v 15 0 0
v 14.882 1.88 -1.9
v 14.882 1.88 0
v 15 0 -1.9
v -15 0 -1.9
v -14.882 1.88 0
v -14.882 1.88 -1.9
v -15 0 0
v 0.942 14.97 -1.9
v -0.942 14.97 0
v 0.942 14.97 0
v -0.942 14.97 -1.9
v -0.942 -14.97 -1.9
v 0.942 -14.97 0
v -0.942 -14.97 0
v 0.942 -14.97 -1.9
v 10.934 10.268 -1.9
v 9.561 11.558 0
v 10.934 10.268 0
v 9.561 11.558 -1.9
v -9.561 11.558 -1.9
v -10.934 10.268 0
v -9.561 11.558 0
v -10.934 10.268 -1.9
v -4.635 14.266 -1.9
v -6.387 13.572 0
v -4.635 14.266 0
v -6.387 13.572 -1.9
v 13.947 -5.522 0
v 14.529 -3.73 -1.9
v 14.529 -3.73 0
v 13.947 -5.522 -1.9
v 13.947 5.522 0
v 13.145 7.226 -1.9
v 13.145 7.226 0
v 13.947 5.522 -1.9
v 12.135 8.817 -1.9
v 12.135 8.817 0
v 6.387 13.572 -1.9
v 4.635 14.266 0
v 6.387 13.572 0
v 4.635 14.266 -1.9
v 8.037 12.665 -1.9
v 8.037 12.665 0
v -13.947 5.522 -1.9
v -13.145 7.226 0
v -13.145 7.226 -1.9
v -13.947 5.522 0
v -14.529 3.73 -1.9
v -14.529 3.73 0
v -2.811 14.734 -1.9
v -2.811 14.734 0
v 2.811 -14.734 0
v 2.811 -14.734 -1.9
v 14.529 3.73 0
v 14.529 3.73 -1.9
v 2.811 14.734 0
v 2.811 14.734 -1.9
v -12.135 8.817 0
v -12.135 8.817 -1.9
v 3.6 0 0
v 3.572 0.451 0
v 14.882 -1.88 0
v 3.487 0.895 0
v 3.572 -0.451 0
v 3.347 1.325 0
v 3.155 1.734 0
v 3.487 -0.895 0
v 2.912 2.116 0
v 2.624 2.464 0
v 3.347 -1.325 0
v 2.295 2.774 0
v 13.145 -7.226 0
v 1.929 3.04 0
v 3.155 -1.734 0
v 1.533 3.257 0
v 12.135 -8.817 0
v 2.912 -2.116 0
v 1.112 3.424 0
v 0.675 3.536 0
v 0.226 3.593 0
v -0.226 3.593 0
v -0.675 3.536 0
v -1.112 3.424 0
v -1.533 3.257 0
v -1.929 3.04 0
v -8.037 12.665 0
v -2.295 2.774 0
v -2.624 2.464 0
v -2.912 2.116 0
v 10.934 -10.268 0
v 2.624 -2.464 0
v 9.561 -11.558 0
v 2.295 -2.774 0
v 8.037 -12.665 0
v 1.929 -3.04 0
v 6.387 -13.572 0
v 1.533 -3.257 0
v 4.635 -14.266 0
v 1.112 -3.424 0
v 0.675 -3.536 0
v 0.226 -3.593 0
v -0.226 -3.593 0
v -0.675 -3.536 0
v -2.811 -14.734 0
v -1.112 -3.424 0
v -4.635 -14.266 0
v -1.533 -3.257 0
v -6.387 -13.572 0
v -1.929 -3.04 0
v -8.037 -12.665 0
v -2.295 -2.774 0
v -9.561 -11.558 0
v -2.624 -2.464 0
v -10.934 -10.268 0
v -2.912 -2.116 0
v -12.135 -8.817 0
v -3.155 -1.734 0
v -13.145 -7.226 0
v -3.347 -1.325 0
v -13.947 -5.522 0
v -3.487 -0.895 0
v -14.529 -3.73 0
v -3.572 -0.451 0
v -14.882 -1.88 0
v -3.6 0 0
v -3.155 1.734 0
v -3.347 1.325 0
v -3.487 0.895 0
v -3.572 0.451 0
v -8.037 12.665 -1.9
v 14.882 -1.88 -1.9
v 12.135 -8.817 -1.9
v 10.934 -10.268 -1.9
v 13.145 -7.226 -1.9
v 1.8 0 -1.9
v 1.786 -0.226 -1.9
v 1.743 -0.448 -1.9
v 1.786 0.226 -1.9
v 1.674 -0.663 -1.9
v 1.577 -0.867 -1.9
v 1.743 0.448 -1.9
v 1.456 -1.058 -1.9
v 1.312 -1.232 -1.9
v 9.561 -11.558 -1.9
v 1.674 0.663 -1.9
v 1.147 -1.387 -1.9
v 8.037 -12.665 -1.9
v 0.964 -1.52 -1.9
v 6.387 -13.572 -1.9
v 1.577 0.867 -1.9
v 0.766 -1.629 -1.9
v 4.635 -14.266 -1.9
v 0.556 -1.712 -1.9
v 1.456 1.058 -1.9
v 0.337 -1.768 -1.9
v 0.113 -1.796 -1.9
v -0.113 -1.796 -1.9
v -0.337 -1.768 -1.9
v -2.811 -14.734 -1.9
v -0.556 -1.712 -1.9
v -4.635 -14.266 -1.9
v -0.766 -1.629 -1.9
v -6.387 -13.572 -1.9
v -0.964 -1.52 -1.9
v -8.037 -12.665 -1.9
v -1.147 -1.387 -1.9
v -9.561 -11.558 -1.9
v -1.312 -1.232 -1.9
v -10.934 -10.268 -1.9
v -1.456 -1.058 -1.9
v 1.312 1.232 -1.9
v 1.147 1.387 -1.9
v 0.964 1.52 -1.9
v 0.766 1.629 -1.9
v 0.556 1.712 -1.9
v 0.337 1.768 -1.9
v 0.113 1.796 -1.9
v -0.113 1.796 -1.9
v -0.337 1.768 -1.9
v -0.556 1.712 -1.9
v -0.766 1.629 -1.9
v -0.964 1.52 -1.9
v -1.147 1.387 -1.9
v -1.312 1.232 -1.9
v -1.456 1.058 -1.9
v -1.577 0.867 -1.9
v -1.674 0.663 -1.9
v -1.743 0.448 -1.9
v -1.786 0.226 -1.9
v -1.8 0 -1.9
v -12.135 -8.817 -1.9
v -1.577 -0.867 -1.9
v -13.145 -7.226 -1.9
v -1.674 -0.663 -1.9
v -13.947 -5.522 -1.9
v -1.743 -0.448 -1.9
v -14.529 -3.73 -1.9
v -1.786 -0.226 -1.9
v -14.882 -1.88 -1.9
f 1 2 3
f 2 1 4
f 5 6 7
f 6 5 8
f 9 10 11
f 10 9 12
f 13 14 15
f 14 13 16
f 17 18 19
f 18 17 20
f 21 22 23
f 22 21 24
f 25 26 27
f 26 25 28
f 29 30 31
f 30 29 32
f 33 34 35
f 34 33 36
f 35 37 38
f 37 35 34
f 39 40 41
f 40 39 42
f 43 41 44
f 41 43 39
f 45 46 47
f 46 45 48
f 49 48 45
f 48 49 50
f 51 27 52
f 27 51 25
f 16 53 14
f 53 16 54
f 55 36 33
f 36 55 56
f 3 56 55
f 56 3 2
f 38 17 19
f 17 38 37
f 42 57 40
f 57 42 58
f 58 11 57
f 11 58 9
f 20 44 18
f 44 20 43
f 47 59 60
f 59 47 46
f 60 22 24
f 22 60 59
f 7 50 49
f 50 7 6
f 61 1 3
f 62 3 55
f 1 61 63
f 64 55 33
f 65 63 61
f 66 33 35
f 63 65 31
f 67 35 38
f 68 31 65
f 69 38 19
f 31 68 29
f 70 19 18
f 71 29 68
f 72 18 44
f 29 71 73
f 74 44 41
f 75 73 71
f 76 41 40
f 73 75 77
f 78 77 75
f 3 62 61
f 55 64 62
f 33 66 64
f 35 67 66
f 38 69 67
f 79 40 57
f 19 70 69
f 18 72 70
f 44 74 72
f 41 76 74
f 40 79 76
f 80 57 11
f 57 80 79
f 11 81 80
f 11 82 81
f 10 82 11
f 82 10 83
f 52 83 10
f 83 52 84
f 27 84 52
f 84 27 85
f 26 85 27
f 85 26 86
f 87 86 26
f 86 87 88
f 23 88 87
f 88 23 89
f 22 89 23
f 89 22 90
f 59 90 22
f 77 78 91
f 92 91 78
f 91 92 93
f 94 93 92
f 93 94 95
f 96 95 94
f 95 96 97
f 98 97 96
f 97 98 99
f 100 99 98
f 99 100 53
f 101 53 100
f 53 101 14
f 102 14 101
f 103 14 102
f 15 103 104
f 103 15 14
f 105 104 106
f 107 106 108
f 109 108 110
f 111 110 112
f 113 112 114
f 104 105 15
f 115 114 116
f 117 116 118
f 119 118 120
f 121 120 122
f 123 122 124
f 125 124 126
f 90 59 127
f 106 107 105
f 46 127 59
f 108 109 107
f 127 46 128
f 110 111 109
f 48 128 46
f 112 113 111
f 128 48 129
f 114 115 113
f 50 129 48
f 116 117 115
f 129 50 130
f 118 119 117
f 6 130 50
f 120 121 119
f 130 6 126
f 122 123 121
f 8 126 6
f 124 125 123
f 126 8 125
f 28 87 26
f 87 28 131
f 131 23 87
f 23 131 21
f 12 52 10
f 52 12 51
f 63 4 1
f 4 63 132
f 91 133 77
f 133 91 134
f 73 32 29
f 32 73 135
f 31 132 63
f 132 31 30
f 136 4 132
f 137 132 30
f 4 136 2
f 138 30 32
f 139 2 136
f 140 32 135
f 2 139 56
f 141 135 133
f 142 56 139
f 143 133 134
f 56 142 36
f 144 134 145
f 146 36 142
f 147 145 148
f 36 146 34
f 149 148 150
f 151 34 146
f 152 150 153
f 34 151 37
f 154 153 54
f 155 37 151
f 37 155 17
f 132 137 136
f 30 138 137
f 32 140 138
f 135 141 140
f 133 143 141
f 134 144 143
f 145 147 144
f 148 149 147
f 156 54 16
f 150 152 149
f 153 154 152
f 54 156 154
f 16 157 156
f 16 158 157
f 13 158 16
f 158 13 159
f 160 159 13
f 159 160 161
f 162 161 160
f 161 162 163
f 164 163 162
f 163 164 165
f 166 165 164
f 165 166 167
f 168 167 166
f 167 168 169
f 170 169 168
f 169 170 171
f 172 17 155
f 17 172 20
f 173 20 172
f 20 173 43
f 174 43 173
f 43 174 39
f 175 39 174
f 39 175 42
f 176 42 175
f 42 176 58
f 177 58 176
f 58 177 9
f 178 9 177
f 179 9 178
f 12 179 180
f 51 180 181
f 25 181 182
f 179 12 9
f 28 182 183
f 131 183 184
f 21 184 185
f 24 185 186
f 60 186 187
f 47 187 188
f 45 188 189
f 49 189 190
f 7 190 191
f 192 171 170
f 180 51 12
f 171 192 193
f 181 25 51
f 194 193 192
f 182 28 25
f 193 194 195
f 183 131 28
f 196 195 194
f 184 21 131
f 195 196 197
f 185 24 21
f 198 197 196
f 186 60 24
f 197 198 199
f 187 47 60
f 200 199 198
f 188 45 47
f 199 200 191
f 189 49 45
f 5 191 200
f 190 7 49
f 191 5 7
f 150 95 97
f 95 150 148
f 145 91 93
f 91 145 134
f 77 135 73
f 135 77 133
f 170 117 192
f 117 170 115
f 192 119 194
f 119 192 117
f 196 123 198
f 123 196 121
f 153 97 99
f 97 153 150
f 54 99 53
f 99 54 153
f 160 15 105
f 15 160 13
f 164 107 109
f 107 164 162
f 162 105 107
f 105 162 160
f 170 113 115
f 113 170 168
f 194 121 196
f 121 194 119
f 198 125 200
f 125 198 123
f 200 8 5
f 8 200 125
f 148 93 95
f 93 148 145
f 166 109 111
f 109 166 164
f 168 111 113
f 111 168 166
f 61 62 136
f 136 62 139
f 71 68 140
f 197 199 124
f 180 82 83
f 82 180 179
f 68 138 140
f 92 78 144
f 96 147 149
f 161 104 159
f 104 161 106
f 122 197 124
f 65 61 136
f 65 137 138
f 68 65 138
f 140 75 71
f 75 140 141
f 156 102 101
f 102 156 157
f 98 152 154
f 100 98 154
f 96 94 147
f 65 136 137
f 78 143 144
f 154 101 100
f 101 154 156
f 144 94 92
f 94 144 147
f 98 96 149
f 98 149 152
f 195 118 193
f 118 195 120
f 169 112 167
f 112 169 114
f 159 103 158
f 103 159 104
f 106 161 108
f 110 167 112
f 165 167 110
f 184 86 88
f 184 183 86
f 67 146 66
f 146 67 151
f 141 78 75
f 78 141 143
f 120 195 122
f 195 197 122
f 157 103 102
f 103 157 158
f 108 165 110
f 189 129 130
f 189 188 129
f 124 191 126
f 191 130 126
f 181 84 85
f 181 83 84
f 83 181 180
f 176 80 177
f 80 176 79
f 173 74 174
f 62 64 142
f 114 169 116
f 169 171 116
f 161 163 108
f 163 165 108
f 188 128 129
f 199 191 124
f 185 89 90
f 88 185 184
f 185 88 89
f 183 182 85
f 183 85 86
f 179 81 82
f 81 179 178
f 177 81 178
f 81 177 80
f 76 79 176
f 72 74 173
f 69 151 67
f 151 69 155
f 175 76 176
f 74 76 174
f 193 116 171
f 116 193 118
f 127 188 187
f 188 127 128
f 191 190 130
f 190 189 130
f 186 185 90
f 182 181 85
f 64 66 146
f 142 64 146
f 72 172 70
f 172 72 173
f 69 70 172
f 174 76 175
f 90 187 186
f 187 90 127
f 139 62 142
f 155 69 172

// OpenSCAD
$fn = 50;


difference() {
	union() {
		translate(v = [0, 0, -1.9000000000]) {
			cylinder(h = 1.9000000000, r = 15.0000000000);
		}
		translate(v = [0, 0, -1.9000000000]) {
			cylinder(h = 1.9000000000, r = 2.8750000000);
		}
	}
	union() {
		translate(v = [0, 0, 0]) {
			rotate(a = [0, 0, 0]) {
				difference() {
					union() {
						#translate(v = [0, 0, -1.9000000000]) {
							cylinder(h = 1.9000000000, r = 1.5000000000);
						}
						#translate(v = [0, 0, -1.9000000000]) {
							cylinder(h = 1.9000000000, r1 = 1.8000000000, r2 = 3.6000000000);
						}
						#translate(v = [0, 0, -1.9000000000]) {
							cylinder(h = 1.9000000000, r = 1.8000000000);
						}
						#translate(v = [0, 0, -1.9000000000]) {
							cylinder(h = 1.9000000000, r = 1.5000000000);
						}
					}
					union();
				}
			}
		}
	}
}
